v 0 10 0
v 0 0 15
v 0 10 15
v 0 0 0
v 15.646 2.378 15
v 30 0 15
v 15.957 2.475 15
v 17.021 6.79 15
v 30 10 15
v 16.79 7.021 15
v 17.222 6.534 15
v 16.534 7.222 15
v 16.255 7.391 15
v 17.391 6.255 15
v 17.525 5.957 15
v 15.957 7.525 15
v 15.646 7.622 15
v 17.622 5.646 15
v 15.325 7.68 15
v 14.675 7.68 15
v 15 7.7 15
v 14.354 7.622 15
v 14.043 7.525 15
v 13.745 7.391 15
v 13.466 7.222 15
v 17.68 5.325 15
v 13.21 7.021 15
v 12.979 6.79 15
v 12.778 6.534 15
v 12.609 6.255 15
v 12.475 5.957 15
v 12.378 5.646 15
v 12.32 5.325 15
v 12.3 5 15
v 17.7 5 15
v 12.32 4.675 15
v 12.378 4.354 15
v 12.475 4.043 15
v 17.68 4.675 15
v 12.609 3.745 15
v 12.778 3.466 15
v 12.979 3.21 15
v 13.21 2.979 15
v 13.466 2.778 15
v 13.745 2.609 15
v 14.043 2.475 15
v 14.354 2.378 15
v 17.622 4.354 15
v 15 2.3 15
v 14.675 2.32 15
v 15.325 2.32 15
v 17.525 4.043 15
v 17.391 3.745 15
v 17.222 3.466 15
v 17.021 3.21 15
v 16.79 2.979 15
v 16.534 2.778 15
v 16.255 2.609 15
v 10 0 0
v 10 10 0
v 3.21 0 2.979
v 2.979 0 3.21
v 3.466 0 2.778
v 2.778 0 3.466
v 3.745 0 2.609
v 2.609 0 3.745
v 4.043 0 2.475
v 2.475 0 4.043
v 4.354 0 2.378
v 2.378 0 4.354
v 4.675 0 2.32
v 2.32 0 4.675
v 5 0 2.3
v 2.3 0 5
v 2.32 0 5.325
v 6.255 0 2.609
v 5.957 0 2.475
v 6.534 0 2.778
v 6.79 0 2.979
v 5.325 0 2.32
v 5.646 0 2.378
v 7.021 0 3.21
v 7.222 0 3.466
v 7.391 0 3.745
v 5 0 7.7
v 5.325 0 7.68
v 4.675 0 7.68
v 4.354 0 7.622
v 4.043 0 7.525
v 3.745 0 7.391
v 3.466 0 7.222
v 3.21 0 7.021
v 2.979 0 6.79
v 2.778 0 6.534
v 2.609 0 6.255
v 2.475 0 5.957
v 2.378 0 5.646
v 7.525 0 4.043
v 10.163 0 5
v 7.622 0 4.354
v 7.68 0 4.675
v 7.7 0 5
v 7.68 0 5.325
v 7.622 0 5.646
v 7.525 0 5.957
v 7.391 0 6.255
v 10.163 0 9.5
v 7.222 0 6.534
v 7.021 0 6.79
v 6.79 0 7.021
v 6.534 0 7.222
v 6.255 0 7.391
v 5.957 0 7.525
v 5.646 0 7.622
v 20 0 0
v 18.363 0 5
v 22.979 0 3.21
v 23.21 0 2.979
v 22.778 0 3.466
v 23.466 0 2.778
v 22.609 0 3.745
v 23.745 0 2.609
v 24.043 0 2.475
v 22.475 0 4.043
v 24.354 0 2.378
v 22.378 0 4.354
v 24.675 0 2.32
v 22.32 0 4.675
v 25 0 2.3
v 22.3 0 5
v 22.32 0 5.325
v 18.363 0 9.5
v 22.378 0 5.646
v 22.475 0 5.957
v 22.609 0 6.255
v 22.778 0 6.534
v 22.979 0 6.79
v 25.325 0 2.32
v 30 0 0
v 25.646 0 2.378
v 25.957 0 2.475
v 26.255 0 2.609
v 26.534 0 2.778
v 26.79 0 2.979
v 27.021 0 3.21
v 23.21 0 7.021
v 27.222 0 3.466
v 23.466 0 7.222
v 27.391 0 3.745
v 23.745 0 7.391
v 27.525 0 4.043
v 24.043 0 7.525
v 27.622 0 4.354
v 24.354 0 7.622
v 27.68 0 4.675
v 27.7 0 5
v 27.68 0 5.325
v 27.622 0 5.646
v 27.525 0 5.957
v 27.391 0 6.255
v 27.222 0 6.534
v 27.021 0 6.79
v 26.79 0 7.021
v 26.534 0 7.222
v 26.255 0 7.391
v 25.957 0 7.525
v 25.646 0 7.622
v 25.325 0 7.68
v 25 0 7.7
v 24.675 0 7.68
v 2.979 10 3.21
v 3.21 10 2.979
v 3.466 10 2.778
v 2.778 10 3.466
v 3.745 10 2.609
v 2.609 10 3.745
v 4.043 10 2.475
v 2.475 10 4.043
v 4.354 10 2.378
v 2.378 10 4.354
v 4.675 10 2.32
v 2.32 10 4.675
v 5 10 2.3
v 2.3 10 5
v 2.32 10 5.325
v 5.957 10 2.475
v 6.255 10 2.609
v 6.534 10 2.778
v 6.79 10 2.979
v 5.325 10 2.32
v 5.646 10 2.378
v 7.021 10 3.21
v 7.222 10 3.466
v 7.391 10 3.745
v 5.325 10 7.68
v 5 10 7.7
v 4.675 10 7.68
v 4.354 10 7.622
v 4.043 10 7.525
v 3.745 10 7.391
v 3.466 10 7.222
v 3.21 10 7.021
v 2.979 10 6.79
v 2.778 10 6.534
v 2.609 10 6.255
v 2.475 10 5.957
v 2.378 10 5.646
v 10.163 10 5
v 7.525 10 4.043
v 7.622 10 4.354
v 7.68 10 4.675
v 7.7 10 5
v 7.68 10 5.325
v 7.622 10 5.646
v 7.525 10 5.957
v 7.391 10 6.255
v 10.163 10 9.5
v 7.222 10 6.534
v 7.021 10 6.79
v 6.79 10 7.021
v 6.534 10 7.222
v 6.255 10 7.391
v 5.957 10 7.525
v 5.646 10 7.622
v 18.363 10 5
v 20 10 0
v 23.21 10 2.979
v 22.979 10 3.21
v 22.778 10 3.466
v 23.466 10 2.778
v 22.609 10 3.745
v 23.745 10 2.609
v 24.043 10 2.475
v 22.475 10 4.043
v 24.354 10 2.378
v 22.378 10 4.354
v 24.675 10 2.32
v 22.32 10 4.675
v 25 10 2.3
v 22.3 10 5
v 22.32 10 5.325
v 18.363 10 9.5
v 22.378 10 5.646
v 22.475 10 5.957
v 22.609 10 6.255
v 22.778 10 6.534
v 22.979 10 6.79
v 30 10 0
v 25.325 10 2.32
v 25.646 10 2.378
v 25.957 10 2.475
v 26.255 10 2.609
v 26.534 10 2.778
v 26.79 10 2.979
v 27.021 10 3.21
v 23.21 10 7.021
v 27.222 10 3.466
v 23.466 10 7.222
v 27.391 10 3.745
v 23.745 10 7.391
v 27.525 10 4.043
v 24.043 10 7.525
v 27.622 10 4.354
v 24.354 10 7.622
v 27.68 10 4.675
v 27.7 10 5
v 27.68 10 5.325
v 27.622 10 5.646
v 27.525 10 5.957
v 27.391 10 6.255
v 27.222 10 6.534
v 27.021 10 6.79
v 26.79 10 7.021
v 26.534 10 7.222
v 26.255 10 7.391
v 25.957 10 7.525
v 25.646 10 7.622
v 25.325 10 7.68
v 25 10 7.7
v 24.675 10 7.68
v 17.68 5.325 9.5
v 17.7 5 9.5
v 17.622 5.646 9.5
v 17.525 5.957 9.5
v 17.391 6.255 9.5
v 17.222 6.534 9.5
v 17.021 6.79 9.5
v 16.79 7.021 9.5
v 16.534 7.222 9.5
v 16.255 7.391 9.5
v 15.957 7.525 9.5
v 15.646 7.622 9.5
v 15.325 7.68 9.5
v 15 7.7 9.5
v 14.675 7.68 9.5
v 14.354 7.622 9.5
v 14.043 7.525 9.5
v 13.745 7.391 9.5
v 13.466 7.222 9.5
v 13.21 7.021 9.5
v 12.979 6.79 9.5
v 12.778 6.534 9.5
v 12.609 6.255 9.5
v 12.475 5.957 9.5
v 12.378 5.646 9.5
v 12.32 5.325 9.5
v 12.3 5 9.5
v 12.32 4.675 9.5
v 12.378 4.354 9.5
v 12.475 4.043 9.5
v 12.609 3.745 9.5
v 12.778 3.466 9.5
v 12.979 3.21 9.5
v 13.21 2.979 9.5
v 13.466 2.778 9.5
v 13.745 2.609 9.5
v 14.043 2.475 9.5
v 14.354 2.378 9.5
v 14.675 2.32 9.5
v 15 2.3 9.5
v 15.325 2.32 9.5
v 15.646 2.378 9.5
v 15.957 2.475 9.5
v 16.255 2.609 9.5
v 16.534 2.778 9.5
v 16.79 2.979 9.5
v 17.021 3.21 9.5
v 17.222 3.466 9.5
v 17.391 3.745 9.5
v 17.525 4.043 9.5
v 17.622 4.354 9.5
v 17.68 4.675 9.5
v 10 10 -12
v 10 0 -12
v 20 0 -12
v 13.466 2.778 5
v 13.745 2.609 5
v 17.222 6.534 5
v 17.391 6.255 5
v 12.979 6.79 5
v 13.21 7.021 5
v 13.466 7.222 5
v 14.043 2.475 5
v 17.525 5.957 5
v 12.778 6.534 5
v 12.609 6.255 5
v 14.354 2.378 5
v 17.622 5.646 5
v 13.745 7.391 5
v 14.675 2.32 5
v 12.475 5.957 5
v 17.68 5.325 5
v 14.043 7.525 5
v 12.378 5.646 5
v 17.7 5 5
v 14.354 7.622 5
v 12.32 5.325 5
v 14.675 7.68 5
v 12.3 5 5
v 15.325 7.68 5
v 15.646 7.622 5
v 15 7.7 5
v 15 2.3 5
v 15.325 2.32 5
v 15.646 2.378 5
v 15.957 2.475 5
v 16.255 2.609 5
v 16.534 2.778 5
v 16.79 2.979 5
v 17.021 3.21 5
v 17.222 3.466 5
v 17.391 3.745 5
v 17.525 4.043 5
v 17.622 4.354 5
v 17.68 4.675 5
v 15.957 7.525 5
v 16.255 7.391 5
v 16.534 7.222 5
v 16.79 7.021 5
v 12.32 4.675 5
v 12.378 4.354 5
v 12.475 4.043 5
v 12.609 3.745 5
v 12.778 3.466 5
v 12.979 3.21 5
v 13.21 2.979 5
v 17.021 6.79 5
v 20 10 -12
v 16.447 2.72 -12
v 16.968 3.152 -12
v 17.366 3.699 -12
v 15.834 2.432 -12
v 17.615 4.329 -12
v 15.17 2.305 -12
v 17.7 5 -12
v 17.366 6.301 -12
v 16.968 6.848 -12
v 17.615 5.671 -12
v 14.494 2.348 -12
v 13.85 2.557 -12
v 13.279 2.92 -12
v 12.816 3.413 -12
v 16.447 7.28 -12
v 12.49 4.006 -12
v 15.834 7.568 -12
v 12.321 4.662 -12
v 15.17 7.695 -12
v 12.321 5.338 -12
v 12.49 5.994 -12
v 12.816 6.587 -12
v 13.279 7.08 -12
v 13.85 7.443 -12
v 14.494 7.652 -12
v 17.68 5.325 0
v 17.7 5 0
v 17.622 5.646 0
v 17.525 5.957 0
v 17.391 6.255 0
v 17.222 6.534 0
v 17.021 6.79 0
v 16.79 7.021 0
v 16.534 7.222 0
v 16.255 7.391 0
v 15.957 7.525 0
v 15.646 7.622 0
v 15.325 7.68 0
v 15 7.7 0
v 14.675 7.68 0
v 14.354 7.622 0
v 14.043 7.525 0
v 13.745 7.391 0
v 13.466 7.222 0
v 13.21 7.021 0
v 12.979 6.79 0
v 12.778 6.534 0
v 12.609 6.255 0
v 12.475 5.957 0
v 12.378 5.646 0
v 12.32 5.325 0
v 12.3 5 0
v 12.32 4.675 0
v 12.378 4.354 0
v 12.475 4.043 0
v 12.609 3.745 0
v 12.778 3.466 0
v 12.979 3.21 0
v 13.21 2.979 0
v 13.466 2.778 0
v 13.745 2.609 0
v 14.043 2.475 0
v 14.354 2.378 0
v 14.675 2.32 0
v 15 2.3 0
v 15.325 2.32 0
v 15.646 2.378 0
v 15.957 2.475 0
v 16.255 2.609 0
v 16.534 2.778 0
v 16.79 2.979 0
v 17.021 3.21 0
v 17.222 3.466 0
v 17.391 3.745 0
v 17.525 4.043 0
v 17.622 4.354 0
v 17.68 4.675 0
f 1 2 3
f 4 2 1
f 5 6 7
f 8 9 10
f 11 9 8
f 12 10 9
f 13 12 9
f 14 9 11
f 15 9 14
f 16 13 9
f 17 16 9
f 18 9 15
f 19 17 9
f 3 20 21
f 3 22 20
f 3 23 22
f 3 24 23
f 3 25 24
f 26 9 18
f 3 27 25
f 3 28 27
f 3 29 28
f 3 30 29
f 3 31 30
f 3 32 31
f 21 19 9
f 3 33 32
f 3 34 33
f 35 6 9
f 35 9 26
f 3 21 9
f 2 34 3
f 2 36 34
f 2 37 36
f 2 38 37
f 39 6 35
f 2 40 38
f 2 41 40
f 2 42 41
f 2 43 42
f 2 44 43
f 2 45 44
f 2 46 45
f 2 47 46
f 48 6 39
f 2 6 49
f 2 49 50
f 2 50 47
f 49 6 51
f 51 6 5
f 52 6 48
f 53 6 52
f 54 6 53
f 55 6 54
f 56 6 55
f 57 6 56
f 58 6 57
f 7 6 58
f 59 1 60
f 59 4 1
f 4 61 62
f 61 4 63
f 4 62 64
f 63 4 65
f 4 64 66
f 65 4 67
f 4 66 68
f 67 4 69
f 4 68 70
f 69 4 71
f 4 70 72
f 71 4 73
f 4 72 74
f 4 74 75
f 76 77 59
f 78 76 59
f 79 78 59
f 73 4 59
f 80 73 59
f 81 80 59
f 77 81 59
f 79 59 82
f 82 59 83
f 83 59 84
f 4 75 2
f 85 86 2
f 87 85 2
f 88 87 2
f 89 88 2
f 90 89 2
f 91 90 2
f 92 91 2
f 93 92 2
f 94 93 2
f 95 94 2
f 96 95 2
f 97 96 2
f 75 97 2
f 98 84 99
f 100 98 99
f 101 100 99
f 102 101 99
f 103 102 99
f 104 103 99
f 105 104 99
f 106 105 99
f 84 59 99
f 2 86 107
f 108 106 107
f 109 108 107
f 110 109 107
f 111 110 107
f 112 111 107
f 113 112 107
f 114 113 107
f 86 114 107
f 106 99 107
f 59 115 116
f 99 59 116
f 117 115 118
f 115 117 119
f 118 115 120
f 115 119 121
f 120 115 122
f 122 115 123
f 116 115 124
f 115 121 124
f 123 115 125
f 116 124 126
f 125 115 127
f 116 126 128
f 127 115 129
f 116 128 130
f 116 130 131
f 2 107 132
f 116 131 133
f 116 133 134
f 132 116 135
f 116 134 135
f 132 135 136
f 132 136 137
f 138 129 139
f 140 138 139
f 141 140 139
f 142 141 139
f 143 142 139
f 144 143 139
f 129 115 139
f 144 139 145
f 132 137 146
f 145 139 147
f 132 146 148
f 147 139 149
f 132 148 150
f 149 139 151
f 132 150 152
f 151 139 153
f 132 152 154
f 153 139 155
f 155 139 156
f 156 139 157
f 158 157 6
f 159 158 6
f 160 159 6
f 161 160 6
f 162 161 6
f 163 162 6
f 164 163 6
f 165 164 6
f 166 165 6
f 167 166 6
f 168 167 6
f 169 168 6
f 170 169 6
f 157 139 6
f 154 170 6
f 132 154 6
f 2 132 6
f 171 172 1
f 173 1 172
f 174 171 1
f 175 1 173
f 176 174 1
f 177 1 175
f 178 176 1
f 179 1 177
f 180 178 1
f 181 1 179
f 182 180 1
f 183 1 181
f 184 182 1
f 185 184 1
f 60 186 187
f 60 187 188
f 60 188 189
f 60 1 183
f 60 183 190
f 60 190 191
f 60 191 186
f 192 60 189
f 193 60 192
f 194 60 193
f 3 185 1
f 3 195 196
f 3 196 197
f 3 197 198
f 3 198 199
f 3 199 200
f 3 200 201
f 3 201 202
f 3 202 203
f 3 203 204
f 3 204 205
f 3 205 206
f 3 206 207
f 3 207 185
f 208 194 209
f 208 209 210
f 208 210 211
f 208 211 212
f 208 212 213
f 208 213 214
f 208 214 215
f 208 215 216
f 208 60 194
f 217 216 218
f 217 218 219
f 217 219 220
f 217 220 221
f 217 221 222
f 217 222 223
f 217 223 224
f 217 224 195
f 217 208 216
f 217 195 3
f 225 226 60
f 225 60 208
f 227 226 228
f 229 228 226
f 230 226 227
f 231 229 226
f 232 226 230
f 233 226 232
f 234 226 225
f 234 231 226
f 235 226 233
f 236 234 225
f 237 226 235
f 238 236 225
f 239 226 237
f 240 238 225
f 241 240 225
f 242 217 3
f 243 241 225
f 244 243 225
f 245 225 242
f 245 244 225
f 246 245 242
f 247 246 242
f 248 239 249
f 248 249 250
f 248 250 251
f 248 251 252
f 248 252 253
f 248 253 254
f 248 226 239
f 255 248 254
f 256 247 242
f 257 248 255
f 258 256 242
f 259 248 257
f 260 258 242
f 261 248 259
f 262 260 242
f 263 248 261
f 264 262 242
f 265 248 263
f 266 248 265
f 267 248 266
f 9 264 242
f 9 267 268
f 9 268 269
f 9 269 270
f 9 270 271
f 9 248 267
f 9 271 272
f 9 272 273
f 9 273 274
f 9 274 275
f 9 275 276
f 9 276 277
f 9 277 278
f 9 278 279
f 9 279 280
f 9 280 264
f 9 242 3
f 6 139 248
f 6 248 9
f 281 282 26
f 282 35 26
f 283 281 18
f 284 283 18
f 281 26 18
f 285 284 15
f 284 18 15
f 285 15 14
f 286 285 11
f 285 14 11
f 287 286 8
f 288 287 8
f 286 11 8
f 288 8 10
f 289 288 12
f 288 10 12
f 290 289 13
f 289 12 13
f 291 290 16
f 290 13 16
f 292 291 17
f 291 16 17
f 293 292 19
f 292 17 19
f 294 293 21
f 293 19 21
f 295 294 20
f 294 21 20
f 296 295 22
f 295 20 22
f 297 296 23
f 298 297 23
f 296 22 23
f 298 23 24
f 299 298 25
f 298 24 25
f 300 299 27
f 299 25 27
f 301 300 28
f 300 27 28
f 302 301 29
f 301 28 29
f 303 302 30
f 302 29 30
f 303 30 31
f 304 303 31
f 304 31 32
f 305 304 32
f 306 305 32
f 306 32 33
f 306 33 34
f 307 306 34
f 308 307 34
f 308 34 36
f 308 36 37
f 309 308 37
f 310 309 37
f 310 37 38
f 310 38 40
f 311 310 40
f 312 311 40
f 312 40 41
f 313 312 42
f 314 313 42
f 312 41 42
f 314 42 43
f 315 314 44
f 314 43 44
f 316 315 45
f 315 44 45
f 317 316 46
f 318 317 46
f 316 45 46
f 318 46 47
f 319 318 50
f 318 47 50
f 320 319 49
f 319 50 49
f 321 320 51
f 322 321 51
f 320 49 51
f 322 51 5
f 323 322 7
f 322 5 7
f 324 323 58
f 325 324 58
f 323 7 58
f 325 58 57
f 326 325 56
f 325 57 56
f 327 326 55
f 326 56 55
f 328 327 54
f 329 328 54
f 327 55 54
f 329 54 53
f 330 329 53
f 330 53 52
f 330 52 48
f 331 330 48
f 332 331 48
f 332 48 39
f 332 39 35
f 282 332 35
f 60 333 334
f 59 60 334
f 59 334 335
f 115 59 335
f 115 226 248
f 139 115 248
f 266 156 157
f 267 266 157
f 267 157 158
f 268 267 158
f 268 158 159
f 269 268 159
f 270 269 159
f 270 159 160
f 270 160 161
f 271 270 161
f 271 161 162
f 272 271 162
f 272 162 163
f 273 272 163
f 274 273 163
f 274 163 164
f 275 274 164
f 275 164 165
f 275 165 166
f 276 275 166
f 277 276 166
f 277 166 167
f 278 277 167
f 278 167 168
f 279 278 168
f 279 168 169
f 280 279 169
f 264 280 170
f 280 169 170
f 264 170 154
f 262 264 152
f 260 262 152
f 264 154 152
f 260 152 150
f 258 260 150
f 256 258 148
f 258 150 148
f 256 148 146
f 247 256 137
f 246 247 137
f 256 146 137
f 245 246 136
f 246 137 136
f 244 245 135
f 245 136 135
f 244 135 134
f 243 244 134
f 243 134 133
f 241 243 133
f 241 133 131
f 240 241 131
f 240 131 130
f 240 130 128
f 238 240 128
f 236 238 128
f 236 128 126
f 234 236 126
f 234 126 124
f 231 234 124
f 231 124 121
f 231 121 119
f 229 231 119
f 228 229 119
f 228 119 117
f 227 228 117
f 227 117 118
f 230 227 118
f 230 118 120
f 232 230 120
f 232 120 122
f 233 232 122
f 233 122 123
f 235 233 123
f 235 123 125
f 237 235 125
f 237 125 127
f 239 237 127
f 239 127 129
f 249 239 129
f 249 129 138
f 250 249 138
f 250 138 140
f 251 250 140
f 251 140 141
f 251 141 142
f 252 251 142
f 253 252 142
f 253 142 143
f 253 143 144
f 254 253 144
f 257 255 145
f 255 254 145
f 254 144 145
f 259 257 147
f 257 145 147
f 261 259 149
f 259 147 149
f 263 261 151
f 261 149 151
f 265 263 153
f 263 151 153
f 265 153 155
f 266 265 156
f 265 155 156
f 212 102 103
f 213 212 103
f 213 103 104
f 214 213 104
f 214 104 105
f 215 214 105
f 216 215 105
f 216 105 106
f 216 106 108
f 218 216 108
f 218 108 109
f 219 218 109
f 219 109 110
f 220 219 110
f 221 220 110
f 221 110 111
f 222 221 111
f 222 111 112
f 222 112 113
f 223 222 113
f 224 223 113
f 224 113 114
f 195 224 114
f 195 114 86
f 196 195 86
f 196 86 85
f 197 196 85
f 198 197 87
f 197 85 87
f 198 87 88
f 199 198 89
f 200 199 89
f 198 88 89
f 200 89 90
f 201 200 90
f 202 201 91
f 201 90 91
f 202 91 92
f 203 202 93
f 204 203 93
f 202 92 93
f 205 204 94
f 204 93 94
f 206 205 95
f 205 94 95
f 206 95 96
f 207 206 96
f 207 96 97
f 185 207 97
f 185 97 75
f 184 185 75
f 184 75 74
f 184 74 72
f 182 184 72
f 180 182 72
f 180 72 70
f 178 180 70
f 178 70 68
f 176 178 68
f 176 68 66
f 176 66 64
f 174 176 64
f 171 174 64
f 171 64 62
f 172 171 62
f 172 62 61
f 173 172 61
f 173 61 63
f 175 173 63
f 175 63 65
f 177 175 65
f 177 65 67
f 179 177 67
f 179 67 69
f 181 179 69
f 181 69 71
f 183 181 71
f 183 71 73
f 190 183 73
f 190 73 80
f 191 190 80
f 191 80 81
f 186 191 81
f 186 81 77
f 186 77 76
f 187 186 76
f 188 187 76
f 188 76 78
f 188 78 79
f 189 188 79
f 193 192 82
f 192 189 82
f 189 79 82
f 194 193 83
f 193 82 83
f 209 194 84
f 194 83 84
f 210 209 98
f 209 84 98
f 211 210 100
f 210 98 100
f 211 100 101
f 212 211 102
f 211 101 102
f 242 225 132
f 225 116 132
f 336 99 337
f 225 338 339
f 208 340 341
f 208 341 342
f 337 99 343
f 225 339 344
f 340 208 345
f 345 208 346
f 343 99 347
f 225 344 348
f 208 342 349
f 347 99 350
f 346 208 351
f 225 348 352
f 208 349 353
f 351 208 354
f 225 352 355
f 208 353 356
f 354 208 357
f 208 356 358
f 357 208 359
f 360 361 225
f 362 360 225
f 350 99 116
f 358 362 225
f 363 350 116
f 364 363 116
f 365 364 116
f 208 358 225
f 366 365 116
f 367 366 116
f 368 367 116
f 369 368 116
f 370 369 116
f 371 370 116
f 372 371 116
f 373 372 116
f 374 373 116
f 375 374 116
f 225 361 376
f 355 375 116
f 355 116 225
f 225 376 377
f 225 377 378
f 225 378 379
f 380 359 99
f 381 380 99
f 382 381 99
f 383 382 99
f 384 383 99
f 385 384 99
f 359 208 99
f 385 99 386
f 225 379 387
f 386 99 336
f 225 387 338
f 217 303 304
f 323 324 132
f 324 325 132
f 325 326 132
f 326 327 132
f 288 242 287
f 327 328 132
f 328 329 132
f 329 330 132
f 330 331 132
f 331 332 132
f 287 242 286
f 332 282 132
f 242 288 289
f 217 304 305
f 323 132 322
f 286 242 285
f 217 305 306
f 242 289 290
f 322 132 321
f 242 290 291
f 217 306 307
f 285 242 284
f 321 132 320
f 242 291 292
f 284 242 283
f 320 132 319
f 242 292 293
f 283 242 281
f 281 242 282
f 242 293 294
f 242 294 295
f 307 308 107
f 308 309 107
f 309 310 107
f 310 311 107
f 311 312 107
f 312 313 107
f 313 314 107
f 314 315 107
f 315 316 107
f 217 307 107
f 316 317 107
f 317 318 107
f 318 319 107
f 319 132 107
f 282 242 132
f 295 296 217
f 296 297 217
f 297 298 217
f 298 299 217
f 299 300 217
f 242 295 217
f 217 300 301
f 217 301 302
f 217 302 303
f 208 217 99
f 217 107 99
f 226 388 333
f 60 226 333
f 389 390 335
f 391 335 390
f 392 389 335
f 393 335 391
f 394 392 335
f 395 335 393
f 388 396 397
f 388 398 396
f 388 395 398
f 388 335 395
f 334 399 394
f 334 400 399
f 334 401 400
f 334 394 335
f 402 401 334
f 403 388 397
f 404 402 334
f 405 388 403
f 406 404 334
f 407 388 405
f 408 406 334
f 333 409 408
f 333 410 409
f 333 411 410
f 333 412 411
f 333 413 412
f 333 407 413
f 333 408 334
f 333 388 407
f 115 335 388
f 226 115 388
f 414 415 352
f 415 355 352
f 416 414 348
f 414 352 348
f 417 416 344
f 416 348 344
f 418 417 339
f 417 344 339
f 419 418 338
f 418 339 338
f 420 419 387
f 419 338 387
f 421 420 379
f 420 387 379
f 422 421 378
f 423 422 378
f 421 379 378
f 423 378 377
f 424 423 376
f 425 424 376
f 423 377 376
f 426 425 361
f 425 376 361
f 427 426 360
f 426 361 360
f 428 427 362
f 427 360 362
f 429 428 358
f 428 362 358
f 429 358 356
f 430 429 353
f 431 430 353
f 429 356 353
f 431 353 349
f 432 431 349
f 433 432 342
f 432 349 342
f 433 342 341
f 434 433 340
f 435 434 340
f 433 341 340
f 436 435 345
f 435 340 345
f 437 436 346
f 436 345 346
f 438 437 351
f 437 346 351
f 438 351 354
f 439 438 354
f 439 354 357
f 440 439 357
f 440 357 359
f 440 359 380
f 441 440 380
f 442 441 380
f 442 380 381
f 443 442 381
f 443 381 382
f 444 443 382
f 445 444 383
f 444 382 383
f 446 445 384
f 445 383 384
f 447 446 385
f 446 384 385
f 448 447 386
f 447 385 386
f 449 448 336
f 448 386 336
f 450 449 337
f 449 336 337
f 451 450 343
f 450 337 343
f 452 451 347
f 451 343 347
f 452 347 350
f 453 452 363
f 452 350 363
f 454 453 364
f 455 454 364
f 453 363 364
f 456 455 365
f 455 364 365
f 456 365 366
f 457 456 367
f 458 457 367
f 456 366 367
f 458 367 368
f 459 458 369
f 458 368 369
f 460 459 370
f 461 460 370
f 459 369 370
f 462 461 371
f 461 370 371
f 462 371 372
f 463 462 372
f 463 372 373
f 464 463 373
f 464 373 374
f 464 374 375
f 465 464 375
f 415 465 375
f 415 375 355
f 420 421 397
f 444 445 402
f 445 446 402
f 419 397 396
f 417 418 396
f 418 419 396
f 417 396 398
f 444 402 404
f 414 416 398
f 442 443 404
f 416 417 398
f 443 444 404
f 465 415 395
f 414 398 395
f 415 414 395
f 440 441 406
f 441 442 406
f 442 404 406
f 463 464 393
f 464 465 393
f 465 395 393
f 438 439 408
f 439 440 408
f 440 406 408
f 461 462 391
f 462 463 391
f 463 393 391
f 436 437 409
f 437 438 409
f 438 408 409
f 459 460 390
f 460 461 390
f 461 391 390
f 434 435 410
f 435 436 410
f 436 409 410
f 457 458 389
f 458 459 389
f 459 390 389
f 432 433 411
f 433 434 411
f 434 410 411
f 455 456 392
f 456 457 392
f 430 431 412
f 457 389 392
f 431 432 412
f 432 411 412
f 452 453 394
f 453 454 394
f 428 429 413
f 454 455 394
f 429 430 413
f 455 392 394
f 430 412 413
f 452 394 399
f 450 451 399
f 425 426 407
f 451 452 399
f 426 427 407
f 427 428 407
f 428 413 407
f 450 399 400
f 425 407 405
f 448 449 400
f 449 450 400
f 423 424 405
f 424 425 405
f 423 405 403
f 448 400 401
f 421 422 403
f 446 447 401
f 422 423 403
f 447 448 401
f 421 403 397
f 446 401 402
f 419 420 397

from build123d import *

# Parameters (mm, degrees)
SKETCH_AS_DRAWN_W              = 30
SKETCH_AS_DRAWN_H              = 15
SKETCH_AS_DRAWN_R              = 2.7
EXTRUDE_DEPTH                  = 10
EXTRUDE_ONTO_SKETCH_ROLL_ANGLE = 90
SKETCH001_R                    = 2.7
POCKET_DEPTH                   = 15.001
SKETCH002_W                    = 8.2
SKETCH002_H                    = 4.5
POCKET001_DEPTH                = 10.001
SKETCH003_W                    = 10
SKETCH003_H                    = 10
PAD_DEPTH                      = 12
SKETCH004_R                    = 2.7
POCKET002_DEPTH                = 27.001


with BuildPart() as part:
    # Sketch as drawn → Extrude (new)
    with BuildSketch(Plane.XY):
        with Locations((15, 7.5)):
            Rectangle(SKETCH_AS_DRAWN_W, SKETCH_AS_DRAWN_H)
        with Locations((5, 5)):
            Circle(SKETCH_AS_DRAWN_R, mode=Mode.SUBTRACT)
        with Locations((25, 5)):
            Circle(SKETCH_AS_DRAWN_R, mode=Mode.SUBTRACT)
    extrude(amount=-EXTRUDE_DEPTH)


with BuildPart() as part_1:
    # Extrude onto Sketch roll: moved
    add(part.part.rotate(Axis((0, 0, 0), (1, 0, 0)), EXTRUDE_ONTO_SKETCH_ROLL_ANGLE))


with BuildPart() as part_2:
    # Extrude onto Sketch placement: moved
    add(part_1.part)

    # Sketch001 → Pocket (cut, through all)
    with BuildSketch(Plane.XY.offset(15)):
        with Locations((15, 5)):
            Circle(SKETCH001_R)
    extrude(amount=-POCKET_DEPTH, mode=Mode.SUBTRACT)

    # Sketch002 → Pocket001 (cut, through all)
    with BuildSketch(Plane.XZ):
        with Locations((14.263317, 7.25)):
            Rectangle(SKETCH002_W, SKETCH002_H)
    extrude(amount=-POCKET001_DEPTH, mode=Mode.SUBTRACT)

    # Sketch003 → Pad (new body)
    with BuildSketch(Plane(origin=(0, 0, 0), x_dir=(1, 0, 0), z_dir=(0, 0, -1))):
        with Locations((15, -5)):
            Rectangle(SKETCH003_W, SKETCH003_H)
    extrude(amount=PAD_DEPTH)

    # Sketch004 → Pocket002 (cut, through all)
    with BuildSketch(Plane(origin=(0, 0, -12), x_dir=(1, 0, 0), z_dir=(0, 0, -1))):
        with Locations((15, -5)):
            Circle(SKETCH004_R)
    extrude(amount=-POCKET002_DEPTH, mode=Mode.SUBTRACT)


solid = part_2.part
